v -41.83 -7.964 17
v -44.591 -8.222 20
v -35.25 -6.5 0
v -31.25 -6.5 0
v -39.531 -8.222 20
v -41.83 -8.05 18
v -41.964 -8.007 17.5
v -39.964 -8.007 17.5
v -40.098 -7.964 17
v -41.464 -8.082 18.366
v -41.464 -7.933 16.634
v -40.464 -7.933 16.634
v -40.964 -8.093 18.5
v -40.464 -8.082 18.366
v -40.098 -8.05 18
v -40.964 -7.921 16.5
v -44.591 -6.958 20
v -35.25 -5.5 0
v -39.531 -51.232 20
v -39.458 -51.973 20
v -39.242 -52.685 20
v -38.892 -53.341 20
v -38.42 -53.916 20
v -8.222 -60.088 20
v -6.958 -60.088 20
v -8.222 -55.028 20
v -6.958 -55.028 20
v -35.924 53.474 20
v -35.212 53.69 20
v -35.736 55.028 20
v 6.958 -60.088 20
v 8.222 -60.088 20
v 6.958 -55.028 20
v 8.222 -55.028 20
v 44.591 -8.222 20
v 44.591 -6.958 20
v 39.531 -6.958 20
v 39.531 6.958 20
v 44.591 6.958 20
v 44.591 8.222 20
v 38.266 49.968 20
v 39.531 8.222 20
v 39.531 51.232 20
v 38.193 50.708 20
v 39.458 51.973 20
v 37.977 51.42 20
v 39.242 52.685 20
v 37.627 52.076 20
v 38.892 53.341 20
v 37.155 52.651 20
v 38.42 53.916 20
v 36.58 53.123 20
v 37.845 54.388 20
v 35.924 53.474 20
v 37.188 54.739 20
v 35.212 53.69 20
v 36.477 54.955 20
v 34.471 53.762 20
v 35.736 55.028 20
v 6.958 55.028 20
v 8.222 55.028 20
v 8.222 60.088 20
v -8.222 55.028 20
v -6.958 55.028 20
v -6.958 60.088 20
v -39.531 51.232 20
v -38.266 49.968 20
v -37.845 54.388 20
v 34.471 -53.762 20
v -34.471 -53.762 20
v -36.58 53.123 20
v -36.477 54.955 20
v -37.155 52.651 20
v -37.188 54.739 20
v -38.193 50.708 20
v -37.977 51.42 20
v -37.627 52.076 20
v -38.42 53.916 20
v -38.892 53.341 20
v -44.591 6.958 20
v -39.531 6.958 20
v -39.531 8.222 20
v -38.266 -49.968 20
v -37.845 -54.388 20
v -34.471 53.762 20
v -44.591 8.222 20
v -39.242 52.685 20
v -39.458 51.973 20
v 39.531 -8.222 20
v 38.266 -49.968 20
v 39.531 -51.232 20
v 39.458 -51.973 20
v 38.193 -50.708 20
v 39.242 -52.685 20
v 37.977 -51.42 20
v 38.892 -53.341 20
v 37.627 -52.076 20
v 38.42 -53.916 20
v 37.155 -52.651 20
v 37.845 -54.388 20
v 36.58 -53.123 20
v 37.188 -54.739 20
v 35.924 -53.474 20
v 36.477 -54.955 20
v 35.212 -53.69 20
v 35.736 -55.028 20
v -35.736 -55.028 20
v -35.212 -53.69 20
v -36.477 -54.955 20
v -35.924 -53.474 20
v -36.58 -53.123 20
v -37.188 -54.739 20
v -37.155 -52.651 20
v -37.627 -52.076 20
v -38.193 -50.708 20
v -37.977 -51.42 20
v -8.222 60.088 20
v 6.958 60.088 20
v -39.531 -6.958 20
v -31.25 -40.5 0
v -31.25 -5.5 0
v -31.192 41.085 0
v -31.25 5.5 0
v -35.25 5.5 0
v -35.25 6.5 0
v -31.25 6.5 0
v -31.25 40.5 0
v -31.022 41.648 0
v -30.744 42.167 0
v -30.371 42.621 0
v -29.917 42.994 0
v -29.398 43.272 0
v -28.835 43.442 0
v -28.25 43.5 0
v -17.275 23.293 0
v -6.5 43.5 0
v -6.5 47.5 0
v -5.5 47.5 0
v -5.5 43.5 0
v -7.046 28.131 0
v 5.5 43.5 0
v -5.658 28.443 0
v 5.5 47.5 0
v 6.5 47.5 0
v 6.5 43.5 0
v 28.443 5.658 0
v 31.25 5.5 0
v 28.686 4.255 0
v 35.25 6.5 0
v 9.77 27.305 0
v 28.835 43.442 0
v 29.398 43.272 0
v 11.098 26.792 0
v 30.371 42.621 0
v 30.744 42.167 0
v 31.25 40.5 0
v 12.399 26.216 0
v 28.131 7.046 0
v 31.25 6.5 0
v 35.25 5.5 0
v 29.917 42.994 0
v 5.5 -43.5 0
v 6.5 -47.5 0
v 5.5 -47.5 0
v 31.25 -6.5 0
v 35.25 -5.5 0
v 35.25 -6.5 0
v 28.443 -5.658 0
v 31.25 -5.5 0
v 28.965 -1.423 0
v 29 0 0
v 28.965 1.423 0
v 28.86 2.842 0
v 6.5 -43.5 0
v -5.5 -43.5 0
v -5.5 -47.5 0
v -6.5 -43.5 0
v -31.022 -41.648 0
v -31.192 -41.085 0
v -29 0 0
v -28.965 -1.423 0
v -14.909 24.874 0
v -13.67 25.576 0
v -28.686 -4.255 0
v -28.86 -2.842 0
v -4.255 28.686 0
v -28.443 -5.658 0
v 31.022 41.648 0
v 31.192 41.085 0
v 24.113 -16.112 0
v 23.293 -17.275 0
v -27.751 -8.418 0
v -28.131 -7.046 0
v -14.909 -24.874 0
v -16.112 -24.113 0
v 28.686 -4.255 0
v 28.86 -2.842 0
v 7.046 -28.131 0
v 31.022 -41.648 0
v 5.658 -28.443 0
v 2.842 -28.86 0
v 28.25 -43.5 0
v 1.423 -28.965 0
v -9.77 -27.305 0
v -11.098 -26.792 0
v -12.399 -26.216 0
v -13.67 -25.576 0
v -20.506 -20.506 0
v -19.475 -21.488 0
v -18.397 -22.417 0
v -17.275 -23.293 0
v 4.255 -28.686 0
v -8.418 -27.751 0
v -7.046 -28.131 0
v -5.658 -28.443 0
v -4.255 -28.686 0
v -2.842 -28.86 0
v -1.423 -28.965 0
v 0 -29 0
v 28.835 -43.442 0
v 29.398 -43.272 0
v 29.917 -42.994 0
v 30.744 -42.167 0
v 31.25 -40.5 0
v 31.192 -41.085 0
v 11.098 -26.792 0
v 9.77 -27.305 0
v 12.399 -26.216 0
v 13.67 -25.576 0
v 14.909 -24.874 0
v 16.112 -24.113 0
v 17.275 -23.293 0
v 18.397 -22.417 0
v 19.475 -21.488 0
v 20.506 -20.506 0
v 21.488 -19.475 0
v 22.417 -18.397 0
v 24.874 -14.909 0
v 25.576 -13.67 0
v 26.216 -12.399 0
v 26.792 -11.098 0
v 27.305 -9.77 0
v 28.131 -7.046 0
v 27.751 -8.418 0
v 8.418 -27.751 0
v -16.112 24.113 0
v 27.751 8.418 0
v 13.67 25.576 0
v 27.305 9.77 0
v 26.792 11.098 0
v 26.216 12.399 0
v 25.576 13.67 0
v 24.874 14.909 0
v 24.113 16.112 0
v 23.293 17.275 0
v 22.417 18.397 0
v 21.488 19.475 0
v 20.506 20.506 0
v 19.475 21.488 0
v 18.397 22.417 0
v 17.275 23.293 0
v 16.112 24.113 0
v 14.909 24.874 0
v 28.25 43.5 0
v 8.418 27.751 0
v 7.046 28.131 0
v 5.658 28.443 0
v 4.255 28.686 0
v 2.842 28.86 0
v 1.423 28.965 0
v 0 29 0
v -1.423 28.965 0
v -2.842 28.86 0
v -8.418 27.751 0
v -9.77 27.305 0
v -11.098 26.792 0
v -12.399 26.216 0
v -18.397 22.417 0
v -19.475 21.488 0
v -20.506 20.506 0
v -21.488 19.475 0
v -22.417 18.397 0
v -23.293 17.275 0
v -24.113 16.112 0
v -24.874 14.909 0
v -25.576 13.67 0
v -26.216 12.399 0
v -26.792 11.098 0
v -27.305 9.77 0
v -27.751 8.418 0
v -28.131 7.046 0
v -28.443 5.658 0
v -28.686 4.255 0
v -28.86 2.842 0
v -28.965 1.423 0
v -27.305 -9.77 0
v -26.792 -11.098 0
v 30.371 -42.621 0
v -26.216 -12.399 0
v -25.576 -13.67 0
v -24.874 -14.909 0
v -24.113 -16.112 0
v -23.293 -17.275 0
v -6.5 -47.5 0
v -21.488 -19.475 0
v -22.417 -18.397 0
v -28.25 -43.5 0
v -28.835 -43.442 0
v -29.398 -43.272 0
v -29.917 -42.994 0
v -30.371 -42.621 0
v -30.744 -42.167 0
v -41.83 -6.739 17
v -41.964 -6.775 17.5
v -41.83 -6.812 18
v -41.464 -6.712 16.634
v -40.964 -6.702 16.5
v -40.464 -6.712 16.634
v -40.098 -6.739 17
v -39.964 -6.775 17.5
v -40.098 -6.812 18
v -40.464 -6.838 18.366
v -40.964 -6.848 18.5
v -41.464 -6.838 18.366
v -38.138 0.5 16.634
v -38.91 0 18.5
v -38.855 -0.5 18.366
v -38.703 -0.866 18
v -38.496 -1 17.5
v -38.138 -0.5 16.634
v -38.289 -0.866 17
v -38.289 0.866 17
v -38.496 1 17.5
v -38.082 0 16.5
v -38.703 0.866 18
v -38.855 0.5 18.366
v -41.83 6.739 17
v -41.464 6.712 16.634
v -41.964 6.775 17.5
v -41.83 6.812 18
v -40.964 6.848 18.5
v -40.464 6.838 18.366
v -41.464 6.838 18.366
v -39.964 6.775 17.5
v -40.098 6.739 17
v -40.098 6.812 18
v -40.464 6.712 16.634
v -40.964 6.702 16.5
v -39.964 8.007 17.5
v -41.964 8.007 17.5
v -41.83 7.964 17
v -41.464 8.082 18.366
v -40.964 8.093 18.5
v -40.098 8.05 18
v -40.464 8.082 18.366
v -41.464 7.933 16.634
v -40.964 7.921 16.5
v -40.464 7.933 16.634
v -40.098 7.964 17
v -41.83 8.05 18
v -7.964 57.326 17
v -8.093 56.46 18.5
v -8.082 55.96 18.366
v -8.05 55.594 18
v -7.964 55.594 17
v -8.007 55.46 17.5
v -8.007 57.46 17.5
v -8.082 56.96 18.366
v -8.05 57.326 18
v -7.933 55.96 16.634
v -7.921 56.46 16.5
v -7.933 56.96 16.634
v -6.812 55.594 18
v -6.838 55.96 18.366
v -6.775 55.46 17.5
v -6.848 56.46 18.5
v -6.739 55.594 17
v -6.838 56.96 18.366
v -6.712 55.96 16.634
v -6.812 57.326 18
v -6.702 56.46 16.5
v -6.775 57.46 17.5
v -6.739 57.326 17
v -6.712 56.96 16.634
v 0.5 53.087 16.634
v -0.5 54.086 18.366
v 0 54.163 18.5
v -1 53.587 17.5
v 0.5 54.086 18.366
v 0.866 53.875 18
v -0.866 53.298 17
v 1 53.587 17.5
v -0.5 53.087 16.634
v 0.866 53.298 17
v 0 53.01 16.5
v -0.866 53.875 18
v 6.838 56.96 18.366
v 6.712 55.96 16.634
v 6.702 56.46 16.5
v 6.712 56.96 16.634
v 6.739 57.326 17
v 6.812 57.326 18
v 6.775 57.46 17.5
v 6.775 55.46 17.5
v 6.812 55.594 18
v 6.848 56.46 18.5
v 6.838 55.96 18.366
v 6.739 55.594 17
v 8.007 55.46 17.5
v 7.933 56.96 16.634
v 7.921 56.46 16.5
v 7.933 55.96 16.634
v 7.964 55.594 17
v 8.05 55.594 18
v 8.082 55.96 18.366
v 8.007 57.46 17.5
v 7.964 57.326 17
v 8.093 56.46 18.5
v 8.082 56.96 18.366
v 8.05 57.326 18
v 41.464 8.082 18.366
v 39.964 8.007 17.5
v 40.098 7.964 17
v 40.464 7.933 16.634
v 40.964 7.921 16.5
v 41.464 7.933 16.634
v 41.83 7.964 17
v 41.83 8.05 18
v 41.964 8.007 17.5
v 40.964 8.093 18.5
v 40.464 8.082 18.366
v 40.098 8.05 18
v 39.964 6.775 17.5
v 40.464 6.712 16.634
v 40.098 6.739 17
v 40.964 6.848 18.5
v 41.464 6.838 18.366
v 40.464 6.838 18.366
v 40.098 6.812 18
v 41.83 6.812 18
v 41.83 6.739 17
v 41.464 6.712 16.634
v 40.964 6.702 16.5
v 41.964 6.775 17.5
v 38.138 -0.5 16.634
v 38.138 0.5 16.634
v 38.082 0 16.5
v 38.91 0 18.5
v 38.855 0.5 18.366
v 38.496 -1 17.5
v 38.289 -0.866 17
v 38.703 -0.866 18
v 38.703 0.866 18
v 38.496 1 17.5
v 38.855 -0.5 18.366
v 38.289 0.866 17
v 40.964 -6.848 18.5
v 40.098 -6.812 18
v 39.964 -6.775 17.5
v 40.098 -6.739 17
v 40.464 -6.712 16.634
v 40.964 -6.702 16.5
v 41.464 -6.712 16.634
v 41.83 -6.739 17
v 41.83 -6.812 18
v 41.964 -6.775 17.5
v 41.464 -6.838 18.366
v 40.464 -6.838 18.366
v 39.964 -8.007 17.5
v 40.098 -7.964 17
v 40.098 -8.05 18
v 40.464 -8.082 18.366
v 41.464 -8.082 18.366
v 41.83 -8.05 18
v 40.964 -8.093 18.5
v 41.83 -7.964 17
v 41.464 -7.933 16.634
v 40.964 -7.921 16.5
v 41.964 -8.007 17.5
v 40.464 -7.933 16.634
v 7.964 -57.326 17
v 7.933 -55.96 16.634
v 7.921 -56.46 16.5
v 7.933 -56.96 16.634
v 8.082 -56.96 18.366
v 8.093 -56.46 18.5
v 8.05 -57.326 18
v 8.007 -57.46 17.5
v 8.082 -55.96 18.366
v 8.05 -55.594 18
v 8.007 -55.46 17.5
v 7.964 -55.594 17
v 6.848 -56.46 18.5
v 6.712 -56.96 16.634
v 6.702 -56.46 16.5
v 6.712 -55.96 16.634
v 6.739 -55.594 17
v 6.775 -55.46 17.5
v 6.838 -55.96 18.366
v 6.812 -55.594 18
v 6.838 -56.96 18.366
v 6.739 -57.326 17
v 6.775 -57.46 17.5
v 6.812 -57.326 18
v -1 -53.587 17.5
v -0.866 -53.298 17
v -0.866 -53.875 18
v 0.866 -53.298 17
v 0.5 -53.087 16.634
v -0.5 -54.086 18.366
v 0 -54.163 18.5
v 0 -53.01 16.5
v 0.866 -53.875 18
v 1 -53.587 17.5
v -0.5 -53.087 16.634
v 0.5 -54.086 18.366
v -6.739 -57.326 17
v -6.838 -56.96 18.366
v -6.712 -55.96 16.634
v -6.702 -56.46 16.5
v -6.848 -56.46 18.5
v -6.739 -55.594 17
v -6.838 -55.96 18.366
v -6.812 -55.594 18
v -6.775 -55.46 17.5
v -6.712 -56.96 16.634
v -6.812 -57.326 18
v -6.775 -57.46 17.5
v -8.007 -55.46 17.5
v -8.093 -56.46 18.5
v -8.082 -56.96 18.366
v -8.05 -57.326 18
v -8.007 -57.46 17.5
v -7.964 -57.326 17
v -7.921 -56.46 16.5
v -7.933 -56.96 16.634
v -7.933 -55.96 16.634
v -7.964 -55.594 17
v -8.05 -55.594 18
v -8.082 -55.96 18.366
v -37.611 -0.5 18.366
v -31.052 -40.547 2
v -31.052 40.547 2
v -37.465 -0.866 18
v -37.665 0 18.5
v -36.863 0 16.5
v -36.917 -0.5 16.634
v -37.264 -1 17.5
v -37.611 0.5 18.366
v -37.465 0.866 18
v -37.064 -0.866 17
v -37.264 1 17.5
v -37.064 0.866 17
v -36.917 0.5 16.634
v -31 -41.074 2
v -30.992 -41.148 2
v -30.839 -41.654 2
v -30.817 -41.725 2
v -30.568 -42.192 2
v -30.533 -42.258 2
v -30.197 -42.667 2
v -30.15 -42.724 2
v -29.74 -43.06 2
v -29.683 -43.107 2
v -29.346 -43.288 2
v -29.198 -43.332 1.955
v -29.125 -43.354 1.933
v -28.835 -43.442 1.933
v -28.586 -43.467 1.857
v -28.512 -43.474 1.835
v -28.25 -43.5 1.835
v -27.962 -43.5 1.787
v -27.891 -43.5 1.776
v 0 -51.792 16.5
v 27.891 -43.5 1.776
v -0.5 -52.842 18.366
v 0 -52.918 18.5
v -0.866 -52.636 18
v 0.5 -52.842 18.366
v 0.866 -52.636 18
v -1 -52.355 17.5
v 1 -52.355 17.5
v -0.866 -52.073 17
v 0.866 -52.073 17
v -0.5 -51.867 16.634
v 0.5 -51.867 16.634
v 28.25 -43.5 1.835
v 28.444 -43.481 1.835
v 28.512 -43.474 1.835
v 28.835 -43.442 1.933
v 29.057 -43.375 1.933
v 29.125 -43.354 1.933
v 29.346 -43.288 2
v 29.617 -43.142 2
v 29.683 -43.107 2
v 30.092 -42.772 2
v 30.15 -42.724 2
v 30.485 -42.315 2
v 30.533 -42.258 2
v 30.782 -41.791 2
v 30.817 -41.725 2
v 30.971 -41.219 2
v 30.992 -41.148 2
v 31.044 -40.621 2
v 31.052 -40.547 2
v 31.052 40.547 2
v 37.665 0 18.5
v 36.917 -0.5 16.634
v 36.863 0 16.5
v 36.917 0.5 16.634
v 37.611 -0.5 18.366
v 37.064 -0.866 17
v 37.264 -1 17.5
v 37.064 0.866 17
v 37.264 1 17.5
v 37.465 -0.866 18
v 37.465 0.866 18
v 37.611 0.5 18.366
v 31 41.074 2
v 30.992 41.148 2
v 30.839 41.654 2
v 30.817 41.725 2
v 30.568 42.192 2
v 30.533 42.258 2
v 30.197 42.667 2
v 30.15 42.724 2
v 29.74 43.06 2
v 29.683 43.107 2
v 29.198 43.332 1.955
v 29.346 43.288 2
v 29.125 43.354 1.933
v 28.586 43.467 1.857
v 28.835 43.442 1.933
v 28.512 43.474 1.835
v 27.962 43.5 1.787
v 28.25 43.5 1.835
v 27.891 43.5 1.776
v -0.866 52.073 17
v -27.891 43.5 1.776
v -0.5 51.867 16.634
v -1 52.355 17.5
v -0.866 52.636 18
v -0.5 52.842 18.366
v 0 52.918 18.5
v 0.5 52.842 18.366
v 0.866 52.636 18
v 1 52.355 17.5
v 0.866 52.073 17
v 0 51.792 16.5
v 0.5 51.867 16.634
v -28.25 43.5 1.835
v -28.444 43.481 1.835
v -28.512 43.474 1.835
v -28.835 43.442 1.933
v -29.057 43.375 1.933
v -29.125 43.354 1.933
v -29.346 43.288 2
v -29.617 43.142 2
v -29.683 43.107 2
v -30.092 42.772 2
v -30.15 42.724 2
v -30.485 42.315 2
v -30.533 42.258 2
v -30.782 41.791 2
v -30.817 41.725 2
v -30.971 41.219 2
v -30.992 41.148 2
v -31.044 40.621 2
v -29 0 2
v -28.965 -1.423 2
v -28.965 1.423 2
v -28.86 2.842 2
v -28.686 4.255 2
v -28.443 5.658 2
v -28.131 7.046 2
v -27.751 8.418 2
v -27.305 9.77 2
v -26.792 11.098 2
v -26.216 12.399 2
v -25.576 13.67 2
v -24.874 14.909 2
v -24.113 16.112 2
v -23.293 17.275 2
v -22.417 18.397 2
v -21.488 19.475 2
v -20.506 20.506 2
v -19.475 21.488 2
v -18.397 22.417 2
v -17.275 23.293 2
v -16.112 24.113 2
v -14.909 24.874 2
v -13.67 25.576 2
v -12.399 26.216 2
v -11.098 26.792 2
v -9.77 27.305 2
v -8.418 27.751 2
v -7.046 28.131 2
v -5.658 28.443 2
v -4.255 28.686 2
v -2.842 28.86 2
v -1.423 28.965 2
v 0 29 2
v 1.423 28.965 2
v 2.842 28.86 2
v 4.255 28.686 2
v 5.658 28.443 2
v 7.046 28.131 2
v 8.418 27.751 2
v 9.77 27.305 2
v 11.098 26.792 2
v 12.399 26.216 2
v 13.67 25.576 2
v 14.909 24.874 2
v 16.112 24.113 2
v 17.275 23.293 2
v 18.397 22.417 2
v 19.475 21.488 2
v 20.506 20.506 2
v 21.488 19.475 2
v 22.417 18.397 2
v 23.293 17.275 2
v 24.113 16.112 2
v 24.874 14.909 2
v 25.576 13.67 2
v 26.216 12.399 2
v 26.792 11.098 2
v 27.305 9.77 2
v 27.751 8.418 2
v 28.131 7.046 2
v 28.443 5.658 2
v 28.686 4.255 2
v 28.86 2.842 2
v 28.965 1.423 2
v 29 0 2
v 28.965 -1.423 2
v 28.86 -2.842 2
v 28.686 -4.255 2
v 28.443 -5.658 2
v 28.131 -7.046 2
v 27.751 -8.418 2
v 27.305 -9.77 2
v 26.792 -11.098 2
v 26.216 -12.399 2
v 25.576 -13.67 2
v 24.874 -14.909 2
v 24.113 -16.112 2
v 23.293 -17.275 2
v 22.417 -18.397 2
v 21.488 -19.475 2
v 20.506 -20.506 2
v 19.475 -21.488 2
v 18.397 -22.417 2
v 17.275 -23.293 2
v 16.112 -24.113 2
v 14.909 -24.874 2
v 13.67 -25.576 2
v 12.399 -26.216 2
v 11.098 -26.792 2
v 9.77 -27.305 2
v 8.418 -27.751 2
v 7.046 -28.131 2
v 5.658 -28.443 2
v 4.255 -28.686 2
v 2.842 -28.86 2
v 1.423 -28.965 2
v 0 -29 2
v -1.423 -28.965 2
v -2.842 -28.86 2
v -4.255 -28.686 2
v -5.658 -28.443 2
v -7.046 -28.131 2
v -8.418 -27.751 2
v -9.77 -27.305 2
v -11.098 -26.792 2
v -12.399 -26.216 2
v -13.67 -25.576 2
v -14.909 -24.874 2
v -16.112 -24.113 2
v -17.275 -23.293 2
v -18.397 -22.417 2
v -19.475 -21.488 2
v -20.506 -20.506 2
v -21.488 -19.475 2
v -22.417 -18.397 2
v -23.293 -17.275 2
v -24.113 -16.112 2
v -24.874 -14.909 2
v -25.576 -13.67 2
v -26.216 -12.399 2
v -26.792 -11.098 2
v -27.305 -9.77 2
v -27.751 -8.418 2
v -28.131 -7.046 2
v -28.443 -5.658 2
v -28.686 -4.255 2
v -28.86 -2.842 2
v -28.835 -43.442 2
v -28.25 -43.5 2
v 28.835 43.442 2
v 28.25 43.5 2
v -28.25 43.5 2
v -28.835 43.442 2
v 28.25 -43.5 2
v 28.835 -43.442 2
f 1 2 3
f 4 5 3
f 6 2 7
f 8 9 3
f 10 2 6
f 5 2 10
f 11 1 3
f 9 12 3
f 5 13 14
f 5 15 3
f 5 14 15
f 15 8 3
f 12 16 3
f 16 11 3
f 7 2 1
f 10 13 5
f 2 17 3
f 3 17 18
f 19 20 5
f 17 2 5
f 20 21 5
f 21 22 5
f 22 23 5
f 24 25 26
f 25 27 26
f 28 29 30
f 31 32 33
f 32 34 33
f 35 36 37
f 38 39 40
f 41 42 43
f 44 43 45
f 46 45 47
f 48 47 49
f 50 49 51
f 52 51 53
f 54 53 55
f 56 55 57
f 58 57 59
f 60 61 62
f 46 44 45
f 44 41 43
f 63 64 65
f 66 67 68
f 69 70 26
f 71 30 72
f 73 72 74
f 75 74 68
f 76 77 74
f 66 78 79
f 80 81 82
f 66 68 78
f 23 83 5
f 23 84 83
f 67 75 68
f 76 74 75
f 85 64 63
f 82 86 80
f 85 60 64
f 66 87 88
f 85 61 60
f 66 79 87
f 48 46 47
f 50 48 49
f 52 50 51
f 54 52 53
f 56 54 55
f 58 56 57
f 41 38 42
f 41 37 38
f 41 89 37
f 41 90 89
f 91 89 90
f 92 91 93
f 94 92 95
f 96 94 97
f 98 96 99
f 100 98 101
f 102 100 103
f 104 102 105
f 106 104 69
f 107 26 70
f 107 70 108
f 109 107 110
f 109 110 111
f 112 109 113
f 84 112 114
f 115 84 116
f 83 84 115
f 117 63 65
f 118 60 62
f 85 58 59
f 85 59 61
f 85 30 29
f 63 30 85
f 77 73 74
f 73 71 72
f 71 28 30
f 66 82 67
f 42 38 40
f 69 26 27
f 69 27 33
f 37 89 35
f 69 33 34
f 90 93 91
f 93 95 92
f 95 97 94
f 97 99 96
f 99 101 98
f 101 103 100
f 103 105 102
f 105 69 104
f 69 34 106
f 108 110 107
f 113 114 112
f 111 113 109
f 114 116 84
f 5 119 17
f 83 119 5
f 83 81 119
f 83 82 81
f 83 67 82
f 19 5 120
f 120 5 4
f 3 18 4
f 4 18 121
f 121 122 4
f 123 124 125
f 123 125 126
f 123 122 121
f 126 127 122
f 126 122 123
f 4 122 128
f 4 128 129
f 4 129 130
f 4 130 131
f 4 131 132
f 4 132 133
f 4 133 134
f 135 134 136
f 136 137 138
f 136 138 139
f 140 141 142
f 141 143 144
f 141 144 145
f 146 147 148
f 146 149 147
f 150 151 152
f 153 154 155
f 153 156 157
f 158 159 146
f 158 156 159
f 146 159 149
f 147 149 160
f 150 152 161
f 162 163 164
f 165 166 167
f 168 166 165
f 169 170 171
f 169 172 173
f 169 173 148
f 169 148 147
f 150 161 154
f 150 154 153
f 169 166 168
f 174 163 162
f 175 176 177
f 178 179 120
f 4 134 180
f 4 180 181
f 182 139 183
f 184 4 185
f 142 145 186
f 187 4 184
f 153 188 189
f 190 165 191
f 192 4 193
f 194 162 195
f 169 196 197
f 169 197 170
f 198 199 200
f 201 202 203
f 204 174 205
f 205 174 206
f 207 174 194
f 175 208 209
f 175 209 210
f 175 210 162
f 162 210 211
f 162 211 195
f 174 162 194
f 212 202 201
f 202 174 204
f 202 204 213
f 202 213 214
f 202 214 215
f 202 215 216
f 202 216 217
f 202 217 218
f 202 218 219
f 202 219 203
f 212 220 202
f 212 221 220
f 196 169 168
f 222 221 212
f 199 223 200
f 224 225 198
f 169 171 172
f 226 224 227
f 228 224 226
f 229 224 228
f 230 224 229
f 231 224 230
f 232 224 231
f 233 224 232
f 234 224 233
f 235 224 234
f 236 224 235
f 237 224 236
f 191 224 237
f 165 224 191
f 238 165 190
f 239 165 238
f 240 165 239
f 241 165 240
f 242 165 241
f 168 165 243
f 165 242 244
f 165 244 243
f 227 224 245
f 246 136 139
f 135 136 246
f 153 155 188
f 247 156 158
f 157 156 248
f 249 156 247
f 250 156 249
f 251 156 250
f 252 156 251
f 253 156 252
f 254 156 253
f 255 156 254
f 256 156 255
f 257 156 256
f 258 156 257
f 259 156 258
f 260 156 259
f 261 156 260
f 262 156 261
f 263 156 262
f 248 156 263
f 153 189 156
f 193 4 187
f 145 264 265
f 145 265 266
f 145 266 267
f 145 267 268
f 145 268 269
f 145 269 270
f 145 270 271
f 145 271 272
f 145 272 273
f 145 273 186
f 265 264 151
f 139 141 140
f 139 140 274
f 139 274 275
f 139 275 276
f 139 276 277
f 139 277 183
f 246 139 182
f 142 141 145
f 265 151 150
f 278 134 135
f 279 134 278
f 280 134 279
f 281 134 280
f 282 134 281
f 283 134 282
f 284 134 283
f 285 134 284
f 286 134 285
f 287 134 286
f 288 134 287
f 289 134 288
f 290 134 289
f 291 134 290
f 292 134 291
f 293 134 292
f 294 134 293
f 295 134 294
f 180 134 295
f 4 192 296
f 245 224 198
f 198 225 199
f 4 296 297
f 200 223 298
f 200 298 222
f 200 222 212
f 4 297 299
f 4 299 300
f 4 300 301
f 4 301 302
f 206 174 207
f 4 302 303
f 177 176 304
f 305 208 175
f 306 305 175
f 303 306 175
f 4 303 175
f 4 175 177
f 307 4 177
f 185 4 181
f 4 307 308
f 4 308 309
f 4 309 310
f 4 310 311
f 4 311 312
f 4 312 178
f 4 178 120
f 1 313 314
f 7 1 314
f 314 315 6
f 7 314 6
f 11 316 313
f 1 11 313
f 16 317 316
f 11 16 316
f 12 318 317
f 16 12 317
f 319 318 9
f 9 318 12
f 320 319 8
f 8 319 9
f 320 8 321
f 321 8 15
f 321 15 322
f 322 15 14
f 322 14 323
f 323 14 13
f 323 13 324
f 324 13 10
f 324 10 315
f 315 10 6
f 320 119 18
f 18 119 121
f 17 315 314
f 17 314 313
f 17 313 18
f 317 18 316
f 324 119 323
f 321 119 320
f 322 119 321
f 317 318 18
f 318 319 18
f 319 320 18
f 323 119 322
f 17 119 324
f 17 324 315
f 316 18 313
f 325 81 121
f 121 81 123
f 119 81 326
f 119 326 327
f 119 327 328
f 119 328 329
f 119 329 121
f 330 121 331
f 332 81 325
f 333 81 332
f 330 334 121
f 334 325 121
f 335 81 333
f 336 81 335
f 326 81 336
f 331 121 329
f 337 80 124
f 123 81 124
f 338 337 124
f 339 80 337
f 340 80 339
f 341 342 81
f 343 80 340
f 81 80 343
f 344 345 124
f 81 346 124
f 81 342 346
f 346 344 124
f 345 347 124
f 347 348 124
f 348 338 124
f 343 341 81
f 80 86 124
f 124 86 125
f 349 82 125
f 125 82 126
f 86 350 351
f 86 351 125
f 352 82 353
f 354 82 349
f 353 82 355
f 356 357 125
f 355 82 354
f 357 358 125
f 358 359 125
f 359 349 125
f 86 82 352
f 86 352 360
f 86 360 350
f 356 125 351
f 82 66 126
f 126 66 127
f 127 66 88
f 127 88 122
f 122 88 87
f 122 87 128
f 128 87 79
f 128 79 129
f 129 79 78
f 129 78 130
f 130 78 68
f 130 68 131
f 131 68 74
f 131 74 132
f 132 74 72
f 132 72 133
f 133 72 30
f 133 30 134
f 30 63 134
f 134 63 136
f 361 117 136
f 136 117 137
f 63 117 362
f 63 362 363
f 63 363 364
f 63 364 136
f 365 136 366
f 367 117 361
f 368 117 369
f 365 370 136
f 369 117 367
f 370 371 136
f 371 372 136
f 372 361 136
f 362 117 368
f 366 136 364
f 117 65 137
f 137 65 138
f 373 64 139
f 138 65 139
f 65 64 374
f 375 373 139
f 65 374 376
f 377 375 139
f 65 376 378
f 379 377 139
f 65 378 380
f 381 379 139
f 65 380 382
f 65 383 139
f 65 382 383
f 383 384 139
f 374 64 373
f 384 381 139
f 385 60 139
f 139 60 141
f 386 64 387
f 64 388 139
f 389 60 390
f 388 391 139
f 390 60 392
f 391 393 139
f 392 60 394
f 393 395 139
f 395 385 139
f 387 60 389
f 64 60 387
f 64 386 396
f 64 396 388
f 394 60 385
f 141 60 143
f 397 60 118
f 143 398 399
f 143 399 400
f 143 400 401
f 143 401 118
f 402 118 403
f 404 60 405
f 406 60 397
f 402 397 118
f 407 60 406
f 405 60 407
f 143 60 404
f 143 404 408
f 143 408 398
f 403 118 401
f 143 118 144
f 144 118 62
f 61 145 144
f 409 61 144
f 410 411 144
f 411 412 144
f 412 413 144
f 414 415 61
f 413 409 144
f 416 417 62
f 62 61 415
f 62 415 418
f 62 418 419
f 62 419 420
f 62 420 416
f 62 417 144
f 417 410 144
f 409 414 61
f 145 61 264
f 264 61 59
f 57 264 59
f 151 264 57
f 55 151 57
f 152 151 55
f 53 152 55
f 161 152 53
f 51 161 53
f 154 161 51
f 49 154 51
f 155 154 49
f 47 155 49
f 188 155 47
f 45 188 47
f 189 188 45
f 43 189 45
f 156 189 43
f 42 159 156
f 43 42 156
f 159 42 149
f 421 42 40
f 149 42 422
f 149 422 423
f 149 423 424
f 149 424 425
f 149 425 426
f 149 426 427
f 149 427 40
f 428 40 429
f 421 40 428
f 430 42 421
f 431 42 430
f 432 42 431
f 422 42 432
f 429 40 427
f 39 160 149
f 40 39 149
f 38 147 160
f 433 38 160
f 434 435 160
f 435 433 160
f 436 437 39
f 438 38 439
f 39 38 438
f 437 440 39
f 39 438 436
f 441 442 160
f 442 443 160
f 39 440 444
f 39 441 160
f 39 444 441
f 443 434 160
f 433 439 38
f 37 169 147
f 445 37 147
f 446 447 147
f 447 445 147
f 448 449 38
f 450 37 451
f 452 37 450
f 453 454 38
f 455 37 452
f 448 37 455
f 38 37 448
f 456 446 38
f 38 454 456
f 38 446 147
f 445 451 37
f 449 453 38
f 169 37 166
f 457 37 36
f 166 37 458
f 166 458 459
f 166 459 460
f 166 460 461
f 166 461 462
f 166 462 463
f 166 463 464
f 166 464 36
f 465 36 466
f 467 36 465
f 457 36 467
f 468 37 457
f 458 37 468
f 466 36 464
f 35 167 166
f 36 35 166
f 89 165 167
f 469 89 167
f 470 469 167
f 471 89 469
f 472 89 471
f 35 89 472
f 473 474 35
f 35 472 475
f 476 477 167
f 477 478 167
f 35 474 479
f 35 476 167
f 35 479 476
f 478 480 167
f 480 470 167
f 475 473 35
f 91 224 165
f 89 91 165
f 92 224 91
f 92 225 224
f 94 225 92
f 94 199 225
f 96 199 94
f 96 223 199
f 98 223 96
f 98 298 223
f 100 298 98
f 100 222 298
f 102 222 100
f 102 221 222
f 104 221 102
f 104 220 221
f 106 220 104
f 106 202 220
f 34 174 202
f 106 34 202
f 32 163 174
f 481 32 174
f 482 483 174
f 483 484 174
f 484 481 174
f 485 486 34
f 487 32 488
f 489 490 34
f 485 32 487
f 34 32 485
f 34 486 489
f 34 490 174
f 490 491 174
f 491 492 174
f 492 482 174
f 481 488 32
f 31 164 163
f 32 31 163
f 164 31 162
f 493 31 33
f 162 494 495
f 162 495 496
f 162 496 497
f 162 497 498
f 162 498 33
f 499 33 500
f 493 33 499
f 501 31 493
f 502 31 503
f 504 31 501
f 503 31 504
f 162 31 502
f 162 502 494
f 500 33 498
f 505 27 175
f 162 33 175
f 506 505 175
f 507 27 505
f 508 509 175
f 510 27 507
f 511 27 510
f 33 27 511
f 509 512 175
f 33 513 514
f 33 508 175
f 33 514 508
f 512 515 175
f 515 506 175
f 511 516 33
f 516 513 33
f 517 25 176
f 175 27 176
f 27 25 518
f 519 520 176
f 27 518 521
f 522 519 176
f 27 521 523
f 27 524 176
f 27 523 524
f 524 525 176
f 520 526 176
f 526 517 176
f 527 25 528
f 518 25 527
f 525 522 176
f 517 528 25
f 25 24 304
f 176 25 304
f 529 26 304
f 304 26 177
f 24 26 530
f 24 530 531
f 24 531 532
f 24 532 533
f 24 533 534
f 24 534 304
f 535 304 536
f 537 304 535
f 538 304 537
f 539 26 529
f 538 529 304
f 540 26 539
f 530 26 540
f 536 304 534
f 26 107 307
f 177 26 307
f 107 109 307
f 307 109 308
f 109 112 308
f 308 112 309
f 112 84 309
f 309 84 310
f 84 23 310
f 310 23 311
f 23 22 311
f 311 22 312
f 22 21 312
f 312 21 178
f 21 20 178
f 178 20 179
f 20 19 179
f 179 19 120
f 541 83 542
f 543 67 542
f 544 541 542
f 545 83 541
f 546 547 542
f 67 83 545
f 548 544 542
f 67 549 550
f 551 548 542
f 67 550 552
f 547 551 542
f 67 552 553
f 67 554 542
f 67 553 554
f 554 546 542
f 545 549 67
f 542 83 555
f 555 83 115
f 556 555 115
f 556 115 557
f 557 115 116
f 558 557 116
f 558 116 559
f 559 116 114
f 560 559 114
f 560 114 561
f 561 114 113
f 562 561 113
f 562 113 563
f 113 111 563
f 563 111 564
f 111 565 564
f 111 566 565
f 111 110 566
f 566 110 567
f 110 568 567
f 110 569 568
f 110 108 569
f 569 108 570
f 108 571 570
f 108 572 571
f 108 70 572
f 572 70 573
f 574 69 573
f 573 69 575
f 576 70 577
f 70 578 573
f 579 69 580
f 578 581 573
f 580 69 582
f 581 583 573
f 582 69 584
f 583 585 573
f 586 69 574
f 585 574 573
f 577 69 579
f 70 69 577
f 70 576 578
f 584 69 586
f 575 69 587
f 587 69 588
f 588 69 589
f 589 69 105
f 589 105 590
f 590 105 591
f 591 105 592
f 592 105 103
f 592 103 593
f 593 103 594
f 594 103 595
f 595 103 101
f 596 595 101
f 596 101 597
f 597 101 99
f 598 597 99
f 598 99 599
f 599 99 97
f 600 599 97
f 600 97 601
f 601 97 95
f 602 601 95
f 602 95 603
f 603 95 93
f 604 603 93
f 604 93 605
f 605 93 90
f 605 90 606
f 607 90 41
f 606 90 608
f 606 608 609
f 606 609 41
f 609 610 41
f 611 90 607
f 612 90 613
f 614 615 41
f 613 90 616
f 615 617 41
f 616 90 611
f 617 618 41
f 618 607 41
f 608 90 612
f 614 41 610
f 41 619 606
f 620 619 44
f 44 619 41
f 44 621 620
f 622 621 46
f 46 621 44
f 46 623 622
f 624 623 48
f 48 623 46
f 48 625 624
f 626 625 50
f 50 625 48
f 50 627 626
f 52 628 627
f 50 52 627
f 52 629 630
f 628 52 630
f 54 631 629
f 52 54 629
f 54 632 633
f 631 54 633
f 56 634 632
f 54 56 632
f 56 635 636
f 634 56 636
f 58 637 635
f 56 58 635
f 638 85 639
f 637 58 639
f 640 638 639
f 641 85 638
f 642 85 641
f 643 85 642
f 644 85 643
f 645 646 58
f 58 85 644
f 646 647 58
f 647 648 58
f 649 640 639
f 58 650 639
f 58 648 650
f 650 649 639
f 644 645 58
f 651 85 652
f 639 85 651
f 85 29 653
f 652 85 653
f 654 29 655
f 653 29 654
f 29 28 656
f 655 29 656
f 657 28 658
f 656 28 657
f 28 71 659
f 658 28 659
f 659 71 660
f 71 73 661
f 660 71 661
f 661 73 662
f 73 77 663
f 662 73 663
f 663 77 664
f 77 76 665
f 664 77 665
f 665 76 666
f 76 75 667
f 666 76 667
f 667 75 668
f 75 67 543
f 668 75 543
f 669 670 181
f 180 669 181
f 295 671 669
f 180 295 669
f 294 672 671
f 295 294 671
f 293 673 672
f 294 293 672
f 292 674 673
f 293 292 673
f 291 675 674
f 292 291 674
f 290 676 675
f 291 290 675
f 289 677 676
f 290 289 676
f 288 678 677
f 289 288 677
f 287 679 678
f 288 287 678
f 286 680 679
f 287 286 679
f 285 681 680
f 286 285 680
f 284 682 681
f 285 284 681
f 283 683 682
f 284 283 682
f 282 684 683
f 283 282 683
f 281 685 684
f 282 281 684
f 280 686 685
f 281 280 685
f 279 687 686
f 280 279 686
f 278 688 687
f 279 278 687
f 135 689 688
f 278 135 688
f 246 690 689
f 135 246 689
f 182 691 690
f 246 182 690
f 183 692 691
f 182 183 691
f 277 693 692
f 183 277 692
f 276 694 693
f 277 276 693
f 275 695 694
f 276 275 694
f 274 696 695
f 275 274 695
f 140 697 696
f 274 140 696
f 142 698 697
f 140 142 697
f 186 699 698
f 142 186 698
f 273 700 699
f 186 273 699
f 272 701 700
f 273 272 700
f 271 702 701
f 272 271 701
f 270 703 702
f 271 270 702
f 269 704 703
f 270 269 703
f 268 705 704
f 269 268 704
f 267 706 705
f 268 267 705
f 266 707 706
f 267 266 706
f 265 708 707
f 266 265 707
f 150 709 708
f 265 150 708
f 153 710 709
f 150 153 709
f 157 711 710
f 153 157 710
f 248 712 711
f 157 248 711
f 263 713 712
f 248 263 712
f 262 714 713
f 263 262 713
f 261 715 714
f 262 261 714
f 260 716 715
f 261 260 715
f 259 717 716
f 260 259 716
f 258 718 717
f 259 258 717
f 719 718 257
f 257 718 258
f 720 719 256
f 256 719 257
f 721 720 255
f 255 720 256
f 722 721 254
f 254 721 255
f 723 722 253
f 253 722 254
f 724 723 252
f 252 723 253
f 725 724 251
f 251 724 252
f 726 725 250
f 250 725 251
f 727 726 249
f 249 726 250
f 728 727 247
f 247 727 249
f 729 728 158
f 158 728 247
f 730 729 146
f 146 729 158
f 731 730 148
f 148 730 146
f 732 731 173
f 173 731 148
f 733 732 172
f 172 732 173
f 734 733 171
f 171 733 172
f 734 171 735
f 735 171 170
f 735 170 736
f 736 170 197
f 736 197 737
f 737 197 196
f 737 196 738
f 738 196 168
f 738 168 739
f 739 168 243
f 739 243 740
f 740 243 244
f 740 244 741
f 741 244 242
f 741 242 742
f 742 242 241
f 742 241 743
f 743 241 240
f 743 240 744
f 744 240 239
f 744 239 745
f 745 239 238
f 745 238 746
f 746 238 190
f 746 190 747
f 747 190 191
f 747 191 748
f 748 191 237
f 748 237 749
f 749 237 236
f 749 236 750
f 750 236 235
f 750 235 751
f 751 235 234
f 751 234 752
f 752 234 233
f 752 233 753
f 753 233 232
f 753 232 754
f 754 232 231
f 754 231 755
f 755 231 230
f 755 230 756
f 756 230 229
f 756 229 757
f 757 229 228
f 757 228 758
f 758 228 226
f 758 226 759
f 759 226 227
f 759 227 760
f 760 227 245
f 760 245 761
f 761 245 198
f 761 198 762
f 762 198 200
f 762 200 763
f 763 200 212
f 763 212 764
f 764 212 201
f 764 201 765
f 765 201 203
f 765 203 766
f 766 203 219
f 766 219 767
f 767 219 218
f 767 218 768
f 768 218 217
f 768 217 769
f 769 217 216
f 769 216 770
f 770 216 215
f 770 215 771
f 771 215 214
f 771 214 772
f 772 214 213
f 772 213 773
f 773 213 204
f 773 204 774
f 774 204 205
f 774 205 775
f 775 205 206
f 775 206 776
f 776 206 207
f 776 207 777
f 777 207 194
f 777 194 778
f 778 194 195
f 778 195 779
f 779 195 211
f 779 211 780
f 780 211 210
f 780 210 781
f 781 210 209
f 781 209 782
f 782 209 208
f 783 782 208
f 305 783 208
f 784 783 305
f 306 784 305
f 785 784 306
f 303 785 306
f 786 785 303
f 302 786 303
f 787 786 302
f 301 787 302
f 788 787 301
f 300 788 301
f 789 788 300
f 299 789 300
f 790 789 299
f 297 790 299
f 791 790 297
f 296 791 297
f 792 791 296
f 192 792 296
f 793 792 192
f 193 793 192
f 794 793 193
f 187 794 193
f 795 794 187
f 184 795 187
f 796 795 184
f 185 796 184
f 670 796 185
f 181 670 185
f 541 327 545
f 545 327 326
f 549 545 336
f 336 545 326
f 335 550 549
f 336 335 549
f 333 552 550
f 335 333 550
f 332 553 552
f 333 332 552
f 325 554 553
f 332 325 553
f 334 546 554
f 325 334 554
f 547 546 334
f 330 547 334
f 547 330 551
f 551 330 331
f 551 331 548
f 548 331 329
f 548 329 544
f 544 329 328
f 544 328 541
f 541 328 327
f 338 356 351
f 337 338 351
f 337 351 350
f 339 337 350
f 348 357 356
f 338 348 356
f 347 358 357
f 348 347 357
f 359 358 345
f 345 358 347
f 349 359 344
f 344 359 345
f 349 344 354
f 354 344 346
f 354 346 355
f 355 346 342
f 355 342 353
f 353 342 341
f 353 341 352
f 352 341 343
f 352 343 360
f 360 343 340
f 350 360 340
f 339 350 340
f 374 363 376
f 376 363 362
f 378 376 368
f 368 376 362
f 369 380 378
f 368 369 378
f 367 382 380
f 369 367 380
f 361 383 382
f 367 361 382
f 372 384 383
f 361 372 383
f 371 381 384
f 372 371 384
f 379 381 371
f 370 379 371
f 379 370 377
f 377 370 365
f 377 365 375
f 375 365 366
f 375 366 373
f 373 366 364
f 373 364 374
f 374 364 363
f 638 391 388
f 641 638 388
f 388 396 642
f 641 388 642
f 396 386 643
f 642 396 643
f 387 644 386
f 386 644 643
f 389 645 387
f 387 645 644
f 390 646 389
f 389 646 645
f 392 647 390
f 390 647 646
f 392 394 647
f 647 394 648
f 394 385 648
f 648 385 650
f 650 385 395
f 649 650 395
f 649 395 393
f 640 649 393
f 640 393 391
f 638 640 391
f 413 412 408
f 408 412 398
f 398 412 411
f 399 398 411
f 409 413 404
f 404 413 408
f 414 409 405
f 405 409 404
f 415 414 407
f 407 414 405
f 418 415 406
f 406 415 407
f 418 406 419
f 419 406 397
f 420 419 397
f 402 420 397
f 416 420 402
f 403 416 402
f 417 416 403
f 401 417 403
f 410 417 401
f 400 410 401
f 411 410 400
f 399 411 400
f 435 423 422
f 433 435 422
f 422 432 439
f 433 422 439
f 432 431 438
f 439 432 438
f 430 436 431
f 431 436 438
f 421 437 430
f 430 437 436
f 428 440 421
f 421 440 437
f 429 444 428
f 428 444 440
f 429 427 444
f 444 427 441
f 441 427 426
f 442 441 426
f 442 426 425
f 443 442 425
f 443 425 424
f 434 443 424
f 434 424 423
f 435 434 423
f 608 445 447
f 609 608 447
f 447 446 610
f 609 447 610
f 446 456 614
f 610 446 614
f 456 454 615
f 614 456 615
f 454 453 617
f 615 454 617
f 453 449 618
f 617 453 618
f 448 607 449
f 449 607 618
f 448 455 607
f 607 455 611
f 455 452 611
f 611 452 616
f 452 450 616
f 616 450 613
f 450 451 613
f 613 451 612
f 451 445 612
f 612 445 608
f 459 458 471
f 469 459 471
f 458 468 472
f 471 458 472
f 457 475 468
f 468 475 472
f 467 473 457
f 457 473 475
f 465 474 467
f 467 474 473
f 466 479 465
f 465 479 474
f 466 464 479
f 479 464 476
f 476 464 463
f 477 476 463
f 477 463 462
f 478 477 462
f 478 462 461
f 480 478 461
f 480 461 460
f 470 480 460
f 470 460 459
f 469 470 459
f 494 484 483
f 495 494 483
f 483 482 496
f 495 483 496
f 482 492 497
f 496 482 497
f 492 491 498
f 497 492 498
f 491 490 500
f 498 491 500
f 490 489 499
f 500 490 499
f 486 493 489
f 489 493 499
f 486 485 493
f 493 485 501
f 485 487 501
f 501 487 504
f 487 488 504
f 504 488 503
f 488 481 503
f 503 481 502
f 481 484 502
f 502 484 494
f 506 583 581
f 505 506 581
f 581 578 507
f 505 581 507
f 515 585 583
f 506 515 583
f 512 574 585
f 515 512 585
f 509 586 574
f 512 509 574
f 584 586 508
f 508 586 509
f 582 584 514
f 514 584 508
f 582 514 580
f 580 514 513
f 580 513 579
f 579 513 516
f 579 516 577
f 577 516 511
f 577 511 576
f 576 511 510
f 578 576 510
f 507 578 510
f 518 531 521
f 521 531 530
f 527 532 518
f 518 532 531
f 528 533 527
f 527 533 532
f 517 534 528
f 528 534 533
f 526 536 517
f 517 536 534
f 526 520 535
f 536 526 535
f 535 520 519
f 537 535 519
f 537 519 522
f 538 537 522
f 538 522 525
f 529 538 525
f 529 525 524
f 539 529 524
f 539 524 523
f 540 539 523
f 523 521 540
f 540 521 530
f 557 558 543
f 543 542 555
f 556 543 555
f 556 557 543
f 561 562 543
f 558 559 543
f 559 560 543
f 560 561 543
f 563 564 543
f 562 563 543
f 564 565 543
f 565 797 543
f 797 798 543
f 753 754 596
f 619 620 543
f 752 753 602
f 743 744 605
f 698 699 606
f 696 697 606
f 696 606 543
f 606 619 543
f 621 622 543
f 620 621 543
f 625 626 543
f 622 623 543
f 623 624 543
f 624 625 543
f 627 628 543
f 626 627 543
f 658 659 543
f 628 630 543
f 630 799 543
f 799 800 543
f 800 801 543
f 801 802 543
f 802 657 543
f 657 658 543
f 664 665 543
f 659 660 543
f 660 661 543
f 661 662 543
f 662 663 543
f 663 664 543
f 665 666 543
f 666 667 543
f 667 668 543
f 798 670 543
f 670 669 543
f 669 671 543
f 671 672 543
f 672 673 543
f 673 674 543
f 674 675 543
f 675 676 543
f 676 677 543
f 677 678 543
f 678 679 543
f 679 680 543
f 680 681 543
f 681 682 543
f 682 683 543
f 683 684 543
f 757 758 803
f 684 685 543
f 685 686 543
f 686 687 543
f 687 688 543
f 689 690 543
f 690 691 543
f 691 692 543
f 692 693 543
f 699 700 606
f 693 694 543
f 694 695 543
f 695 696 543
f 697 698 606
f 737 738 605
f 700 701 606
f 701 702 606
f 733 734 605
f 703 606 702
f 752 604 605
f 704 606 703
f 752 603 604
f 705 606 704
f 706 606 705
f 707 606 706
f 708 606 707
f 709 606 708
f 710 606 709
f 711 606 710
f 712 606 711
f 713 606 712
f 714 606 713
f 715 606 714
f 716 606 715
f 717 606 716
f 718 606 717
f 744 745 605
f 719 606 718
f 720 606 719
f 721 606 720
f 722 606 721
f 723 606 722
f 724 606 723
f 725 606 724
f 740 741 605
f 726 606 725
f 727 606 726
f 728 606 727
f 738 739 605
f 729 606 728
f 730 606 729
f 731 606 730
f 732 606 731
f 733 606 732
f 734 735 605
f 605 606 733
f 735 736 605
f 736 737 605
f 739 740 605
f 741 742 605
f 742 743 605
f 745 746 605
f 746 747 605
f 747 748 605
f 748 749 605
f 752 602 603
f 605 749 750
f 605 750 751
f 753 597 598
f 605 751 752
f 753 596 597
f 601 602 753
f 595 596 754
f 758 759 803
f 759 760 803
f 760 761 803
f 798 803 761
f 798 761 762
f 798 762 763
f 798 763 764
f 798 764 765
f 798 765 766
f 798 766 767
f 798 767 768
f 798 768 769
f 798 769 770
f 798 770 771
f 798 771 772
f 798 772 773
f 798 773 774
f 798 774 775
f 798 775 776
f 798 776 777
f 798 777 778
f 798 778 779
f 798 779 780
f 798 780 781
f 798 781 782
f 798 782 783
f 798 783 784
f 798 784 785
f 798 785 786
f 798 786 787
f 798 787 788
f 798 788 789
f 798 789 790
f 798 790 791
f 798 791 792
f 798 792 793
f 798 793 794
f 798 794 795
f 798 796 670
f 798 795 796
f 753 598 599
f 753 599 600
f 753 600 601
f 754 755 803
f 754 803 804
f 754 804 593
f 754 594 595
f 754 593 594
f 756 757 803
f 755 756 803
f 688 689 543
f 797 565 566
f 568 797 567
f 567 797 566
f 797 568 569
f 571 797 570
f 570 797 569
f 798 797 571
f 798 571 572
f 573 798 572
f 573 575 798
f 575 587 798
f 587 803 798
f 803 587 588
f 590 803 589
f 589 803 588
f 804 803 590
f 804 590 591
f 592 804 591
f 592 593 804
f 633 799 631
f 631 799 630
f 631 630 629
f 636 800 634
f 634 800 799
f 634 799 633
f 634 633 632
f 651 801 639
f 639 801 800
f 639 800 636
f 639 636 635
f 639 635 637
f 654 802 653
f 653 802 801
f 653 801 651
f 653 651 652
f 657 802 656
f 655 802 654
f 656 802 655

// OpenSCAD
grow=1.265;

module scoop(cornerrad=3, longside=88-1, shortside=63.5-1, ht=20, grow=grow, wallthin=1){
translate([0, 0, 10])
	linear_extrude(height = 20, center = true, convexity = 10, twist = 0, scale=grow, $fn=100)
		difference(){
			union(){
			translate([0,6,0])
				square([shortside+8,1], center=true);
			translate([0,-6,0])
				square([shortside+8,1], center=true);
			translate([-6,0,0])
				square([1,longside+8], center=true);
			translate([6,0,0])
				square([1,longside+8], center=true);
			minkowski(){
				circle(r=cornerrad, $fn=32);
				square([shortside-cornerrad*2, longside-cornerrad*2], center=true);
			}}
			minkowski(){
				circle(r=cornerrad, $fn=32);
				square([shortside-cornerrad*2-wallthin*2, longside-cornerrad*2-wallthin*2], center=true);
			}
		}
	// floor with hole for can
	translate([0, 0, 1])
	difference(){
	linear_extrude(height=2, center = true, convexity = 10, twist = 0, scale=1, $fn=100)
			minkowski(){
				circle(r=cornerrad, $fn=32);
				square([shortside-cornerrad*2, longside-cornerrad*2], center=true);
			}
	cylinder(r=58/2, h=4, center=true, $fn=128);
	}
}

module measures(lx=63.5, ly=88){
	rotate([0,90,0])
		cylinder(r=4, h=lx, center=true, $fn=6);
	rotate([90,0,0])
		cylinder(r=4, h=ly, center=true, $fn=6);
	cylinder(r=53.72/2, h=3, center=true, $fn=64);
}

module poop(holerad=1.0, fudge=-.8){
	difference(){
		scoop();
		for(xy=[[63.5*grow/2-fudge, [90,0,0]], 
					[-63.5*grow/2+fudge, [90,0,0]],
					[88*grow/2-fudge, [90,90,90]],
					[-88*grow/2+fudge, [90,90,90]]]){
			translate([xy[0],0,17.5]) rotate(xy[1])
				cylinder(r=holerad, h=150, center=true, $fn=12);
			translate([0,xy[0],17.5]) rotate(xy[1])
				cylinder(r=holerad, h=150, center=true, $fn=12);
			}
	}
}

poop();
